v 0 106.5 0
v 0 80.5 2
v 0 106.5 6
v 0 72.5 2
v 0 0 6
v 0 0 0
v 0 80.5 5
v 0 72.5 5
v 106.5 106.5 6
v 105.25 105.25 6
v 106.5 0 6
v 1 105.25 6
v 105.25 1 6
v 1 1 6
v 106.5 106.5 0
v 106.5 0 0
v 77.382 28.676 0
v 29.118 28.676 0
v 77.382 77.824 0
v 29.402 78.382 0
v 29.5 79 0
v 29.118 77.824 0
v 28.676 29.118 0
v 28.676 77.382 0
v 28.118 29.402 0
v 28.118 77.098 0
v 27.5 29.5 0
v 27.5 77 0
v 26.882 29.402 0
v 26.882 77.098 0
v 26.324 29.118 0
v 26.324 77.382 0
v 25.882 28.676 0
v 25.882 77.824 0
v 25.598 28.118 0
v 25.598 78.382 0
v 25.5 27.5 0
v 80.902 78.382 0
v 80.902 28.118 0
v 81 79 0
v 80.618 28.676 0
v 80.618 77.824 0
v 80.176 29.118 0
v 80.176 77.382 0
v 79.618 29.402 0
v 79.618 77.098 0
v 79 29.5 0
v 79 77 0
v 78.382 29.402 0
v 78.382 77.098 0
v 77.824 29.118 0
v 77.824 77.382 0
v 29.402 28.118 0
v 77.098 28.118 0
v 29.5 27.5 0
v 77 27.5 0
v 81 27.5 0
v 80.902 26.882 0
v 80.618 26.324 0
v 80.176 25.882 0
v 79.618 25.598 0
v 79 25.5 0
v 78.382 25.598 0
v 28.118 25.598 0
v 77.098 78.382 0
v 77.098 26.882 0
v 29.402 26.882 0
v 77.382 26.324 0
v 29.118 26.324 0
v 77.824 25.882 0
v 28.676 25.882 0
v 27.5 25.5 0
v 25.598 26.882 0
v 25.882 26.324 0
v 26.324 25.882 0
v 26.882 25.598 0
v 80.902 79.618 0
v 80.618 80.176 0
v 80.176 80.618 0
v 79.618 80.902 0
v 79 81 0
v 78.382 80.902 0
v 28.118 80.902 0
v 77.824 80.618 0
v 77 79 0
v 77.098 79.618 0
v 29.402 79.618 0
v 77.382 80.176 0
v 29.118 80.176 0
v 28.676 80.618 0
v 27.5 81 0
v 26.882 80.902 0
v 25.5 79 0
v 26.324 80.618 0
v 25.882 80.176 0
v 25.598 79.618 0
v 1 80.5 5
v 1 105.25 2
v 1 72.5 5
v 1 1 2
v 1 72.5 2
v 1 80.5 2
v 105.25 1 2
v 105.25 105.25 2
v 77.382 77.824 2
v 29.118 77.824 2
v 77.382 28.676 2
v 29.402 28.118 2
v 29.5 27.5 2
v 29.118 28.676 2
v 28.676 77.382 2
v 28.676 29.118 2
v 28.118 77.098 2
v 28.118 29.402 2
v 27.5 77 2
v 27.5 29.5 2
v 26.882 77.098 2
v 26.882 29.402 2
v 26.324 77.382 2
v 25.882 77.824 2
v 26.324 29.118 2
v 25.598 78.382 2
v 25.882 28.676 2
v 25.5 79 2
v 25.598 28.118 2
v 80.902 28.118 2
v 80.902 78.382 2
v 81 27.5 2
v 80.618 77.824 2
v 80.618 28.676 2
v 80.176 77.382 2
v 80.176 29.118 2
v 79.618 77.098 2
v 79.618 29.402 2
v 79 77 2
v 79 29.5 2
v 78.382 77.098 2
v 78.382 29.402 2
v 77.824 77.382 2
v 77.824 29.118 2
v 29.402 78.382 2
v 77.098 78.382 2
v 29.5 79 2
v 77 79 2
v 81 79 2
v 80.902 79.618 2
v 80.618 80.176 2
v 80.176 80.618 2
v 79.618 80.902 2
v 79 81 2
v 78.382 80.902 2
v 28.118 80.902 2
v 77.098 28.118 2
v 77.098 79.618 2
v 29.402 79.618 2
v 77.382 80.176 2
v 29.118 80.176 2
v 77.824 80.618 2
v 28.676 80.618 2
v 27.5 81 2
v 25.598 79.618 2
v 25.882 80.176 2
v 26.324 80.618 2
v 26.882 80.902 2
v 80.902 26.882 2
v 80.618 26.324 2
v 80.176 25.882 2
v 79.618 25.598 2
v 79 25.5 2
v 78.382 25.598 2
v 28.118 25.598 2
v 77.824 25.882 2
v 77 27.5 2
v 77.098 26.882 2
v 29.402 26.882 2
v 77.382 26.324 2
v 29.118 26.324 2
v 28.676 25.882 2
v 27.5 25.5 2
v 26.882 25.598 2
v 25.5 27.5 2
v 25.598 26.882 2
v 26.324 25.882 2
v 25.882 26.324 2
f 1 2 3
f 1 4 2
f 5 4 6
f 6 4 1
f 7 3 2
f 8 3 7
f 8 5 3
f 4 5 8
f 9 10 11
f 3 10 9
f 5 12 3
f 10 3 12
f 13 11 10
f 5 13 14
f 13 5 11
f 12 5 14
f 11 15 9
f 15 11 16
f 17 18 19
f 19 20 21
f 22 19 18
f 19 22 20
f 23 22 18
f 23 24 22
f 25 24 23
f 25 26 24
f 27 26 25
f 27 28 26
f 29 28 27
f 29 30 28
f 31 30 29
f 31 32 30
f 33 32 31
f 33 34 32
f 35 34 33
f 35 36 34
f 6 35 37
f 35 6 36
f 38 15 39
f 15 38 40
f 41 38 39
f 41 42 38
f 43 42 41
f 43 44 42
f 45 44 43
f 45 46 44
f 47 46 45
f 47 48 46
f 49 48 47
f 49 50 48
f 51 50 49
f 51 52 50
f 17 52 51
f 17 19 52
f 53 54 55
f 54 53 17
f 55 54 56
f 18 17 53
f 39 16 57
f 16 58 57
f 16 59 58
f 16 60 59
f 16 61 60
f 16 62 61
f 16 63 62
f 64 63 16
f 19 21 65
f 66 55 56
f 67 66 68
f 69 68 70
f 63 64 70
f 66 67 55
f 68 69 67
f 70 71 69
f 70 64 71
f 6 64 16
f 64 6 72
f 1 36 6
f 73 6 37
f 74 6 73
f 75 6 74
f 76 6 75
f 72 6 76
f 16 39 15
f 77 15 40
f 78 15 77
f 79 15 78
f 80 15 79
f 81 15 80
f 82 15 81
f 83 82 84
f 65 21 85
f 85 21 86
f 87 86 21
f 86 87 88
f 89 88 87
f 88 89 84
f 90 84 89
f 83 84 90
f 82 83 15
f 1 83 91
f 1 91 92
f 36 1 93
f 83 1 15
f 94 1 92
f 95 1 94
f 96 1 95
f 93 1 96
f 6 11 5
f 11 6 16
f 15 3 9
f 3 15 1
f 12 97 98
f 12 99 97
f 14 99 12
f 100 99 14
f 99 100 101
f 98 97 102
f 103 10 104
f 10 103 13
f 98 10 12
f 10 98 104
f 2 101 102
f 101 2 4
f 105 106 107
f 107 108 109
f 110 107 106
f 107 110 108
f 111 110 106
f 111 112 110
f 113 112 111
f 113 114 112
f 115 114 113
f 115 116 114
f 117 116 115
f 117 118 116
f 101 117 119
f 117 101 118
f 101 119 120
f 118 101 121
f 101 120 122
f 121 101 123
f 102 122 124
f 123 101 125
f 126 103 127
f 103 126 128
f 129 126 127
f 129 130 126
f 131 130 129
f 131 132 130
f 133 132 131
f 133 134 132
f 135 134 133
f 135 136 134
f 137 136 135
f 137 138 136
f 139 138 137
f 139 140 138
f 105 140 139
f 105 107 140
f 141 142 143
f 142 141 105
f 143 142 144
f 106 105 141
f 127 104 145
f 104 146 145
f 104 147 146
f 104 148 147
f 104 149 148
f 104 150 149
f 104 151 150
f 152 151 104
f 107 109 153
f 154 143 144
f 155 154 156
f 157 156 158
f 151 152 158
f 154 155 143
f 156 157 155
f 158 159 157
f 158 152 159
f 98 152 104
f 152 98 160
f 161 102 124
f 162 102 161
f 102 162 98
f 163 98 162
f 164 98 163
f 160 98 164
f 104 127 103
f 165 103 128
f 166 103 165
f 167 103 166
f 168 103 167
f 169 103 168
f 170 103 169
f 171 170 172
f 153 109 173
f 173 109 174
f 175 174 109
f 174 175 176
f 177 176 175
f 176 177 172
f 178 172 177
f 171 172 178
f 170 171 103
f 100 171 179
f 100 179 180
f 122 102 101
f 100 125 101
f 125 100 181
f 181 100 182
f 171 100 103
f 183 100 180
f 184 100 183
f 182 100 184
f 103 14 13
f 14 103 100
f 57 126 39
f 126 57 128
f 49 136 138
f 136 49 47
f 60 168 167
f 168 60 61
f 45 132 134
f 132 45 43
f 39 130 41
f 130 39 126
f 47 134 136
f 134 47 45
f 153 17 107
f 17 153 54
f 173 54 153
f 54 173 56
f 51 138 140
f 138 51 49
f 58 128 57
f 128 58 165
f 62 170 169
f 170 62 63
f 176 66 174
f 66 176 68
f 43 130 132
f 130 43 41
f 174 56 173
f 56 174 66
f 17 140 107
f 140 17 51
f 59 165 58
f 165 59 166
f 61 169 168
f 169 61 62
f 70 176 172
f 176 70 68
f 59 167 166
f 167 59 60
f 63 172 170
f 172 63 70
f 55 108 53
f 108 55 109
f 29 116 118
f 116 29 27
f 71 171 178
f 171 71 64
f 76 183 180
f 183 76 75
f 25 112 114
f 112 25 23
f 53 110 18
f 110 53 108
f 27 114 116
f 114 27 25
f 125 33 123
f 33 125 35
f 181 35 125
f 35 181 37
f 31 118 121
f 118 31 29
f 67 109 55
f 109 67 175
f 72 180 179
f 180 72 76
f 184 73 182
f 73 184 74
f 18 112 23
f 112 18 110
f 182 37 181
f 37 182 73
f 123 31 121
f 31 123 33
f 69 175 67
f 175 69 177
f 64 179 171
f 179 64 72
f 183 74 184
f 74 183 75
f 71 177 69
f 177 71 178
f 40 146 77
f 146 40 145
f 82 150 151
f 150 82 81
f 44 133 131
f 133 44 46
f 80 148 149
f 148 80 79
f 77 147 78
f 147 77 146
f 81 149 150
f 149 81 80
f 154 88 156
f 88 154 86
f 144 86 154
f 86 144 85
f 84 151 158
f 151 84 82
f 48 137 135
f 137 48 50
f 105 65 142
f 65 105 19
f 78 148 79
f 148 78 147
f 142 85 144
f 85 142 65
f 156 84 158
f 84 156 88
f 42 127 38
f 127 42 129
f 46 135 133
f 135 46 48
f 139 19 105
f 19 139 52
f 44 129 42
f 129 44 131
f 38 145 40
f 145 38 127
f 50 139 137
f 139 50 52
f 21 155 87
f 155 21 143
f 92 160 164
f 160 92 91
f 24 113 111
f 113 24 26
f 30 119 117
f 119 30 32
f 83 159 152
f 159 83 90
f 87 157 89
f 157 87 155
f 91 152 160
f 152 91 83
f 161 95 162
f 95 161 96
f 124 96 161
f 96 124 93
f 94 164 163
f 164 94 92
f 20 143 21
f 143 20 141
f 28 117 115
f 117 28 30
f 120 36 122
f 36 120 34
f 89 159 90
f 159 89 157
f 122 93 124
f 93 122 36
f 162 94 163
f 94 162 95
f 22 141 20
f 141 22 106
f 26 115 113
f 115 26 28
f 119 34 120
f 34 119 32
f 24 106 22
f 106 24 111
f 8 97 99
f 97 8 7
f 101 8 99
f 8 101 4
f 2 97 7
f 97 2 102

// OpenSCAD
$fn = 20;
wallHeight = 6;
postDiameter = 2;

difference()
{
    cube([106.5,106.5,wallHeight],false);
    translate([1,1,2]) cube([104.25,104.25,wallHeight],false);
    
    translate([79,27.5,-2]) cylinder(wallHeight,postDiameter,postDiameter);
 
 
    translate([27.5,27.5,-2]) cylinder(wallHeight,postDiameter,postDiameter);
 
    translate([79,79,-2]) cylinder(wallHeight,postDiameter,postDiameter);

   translate([27.5,79,-2]) cylinder(wallHeight,postDiameter,postDiameter);

    //translate([-2,21,2]) cube([3,8,3],false);
    translate([-2,72.5,2]) cube([3,8,3],false);
}
